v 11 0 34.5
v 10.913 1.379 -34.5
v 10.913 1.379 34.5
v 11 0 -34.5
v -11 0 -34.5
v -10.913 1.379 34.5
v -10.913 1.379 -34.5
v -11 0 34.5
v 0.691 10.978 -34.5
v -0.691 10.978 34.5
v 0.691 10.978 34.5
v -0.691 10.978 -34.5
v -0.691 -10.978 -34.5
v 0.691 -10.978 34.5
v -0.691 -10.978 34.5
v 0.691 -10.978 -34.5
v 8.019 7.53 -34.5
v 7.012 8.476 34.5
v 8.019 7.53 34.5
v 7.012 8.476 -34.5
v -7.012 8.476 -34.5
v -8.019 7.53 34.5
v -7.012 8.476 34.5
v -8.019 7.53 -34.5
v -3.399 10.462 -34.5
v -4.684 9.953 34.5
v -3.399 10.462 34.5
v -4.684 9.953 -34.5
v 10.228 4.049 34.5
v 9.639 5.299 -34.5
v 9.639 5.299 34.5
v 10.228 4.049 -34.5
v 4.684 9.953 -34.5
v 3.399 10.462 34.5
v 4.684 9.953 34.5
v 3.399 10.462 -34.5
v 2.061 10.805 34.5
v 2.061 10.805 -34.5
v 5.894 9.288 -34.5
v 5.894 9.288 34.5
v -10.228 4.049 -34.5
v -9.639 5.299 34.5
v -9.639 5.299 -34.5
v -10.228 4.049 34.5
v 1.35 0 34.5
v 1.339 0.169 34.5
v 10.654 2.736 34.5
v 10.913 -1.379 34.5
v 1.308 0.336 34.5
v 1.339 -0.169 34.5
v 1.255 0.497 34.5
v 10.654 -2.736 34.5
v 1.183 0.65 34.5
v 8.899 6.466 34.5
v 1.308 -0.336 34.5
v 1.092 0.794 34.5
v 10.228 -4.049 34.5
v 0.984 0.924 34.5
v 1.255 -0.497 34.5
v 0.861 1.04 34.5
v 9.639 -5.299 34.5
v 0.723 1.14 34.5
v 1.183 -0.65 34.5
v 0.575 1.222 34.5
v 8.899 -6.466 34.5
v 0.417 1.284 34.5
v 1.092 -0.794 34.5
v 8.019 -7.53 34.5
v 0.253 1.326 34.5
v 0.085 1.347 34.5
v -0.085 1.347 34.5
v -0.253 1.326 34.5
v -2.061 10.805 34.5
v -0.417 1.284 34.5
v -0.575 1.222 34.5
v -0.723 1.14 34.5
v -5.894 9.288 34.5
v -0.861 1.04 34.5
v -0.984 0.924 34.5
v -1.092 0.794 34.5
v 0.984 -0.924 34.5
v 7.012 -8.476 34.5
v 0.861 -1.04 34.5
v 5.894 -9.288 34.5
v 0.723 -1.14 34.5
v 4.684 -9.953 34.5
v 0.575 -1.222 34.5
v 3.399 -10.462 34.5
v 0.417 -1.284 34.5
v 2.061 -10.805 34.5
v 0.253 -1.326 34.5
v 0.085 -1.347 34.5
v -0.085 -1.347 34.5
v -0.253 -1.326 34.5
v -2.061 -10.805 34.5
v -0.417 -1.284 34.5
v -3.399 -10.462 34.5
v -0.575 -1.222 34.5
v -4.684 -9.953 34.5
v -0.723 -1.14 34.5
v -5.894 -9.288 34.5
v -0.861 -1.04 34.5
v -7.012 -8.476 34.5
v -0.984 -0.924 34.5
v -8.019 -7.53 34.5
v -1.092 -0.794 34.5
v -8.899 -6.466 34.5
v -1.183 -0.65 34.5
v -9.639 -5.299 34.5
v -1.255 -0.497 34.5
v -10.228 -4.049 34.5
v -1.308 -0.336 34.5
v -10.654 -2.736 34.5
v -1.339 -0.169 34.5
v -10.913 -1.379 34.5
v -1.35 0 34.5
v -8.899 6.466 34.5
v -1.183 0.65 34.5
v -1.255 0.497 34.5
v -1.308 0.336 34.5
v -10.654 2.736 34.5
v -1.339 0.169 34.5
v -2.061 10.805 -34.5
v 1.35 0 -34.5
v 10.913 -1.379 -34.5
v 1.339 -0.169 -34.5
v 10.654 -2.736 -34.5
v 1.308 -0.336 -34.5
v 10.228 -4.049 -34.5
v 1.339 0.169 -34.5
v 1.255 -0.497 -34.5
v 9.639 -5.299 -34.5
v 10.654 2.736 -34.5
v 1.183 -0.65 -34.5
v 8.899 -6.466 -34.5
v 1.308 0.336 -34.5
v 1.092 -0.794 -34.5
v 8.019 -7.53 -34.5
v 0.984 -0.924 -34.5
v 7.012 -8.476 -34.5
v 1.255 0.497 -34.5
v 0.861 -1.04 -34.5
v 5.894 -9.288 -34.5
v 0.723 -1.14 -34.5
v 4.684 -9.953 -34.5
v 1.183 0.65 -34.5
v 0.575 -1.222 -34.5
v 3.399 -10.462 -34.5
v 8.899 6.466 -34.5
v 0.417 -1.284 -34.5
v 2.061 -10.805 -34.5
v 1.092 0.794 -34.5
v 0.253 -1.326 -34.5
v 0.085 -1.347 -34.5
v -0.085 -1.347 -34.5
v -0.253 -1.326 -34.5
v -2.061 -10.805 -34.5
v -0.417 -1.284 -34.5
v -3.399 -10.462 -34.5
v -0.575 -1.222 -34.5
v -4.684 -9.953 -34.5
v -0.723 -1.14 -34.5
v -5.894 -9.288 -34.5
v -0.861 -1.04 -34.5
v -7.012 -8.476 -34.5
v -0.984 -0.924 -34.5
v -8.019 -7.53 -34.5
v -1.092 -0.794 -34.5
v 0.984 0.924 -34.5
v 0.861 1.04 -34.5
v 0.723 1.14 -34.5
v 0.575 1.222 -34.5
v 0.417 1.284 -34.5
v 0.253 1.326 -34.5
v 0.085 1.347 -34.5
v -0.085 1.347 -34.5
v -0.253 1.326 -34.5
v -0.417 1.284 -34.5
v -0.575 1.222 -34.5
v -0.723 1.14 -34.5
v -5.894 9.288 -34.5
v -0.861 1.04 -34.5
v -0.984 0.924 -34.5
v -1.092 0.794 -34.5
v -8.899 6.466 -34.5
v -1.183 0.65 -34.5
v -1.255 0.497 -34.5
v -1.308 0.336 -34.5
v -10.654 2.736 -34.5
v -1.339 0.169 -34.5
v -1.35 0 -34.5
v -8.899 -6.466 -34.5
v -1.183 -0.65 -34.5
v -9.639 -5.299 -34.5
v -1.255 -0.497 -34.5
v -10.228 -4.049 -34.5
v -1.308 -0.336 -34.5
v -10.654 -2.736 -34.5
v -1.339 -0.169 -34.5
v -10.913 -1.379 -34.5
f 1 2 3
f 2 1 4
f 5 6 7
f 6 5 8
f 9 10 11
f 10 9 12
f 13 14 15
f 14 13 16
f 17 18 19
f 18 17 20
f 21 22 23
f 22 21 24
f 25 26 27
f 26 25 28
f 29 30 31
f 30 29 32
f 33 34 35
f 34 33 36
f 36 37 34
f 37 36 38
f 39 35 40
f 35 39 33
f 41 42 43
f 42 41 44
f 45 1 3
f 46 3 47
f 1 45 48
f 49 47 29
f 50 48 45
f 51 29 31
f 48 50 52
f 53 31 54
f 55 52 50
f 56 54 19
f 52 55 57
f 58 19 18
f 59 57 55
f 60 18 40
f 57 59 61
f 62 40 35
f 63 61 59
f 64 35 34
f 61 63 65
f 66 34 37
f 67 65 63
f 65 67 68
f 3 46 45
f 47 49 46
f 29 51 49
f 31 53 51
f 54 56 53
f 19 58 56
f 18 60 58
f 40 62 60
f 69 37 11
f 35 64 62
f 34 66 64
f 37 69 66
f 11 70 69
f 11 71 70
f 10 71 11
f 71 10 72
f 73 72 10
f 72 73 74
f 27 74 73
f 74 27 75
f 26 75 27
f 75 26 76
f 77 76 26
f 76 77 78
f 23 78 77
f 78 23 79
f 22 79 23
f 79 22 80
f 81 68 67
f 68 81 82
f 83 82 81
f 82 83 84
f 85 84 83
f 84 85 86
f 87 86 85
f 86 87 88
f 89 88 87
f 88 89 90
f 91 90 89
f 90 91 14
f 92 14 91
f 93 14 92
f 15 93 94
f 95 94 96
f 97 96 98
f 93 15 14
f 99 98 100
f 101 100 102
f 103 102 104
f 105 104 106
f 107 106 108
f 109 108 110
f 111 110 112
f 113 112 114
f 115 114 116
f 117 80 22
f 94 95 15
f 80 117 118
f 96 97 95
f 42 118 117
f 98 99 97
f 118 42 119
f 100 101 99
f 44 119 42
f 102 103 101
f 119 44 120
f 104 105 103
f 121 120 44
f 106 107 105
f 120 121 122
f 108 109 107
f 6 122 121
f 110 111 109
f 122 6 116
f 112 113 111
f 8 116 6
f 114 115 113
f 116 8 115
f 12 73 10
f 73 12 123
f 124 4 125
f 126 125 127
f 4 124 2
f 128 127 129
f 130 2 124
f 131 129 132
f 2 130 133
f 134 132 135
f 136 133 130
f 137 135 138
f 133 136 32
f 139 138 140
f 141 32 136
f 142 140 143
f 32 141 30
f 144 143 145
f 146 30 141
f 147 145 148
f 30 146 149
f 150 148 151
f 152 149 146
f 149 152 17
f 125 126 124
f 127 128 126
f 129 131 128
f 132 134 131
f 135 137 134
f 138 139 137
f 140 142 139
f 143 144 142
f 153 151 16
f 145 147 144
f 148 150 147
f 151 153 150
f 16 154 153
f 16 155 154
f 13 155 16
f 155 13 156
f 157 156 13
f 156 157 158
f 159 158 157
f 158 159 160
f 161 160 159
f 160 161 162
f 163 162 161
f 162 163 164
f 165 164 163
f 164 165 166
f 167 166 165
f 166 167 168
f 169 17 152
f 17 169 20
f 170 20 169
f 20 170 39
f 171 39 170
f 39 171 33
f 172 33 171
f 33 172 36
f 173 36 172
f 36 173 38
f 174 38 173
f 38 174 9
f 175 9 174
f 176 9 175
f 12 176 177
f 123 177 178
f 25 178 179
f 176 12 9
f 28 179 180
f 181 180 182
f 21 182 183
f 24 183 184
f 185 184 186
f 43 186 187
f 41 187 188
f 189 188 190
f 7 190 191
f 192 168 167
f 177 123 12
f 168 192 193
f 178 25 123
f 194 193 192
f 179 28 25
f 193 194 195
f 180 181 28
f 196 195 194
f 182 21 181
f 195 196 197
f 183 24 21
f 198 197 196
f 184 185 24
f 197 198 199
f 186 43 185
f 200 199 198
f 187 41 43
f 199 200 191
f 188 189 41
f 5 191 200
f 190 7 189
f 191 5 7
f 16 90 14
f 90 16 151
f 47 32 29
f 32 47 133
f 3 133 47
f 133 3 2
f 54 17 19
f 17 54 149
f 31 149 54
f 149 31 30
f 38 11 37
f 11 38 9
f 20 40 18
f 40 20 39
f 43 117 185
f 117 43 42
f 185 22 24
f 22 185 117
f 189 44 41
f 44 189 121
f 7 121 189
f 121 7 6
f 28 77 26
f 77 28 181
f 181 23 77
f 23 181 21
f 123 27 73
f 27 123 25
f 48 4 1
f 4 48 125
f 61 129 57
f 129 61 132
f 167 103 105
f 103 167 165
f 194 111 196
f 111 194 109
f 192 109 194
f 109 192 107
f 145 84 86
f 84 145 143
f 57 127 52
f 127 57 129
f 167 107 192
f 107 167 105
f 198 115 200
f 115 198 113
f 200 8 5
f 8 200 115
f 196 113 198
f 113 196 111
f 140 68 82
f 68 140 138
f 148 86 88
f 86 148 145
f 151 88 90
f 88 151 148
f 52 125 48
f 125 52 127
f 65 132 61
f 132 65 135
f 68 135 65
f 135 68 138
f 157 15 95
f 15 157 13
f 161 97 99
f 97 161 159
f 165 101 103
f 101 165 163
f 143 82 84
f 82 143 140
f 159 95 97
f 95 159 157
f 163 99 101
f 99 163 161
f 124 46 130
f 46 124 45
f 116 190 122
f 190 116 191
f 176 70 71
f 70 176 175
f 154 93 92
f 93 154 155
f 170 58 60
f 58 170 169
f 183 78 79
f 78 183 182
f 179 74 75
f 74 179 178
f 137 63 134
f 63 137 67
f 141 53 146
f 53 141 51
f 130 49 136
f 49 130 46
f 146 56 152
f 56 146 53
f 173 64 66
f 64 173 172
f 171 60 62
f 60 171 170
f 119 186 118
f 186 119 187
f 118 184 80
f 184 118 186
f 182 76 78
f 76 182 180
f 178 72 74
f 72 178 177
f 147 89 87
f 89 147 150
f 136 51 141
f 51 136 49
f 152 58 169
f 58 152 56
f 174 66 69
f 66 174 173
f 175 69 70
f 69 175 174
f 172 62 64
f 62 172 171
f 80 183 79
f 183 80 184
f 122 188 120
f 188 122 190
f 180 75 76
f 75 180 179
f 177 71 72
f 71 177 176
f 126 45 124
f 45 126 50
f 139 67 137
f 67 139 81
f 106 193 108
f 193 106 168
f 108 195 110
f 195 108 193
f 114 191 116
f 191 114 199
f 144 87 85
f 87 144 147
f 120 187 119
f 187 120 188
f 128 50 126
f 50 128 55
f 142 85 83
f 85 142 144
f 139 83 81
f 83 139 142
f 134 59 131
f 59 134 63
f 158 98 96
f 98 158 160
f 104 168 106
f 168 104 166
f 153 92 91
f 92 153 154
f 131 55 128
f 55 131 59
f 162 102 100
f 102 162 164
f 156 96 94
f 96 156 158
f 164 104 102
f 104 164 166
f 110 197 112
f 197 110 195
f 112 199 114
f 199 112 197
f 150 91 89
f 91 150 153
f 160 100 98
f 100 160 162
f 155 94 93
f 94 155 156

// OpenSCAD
$fn = 50;


difference() {
	union() {
		translate(v = [0, 0, -34.5000000000]) {
			cylinder(h = 69, r = 11.0000000000);
		}
	}
	union() {
		translate(v = [0, 0, -100.0000000000]) {
			cylinder(h = 200, r = 1.3500000000);
		}
	}
}
